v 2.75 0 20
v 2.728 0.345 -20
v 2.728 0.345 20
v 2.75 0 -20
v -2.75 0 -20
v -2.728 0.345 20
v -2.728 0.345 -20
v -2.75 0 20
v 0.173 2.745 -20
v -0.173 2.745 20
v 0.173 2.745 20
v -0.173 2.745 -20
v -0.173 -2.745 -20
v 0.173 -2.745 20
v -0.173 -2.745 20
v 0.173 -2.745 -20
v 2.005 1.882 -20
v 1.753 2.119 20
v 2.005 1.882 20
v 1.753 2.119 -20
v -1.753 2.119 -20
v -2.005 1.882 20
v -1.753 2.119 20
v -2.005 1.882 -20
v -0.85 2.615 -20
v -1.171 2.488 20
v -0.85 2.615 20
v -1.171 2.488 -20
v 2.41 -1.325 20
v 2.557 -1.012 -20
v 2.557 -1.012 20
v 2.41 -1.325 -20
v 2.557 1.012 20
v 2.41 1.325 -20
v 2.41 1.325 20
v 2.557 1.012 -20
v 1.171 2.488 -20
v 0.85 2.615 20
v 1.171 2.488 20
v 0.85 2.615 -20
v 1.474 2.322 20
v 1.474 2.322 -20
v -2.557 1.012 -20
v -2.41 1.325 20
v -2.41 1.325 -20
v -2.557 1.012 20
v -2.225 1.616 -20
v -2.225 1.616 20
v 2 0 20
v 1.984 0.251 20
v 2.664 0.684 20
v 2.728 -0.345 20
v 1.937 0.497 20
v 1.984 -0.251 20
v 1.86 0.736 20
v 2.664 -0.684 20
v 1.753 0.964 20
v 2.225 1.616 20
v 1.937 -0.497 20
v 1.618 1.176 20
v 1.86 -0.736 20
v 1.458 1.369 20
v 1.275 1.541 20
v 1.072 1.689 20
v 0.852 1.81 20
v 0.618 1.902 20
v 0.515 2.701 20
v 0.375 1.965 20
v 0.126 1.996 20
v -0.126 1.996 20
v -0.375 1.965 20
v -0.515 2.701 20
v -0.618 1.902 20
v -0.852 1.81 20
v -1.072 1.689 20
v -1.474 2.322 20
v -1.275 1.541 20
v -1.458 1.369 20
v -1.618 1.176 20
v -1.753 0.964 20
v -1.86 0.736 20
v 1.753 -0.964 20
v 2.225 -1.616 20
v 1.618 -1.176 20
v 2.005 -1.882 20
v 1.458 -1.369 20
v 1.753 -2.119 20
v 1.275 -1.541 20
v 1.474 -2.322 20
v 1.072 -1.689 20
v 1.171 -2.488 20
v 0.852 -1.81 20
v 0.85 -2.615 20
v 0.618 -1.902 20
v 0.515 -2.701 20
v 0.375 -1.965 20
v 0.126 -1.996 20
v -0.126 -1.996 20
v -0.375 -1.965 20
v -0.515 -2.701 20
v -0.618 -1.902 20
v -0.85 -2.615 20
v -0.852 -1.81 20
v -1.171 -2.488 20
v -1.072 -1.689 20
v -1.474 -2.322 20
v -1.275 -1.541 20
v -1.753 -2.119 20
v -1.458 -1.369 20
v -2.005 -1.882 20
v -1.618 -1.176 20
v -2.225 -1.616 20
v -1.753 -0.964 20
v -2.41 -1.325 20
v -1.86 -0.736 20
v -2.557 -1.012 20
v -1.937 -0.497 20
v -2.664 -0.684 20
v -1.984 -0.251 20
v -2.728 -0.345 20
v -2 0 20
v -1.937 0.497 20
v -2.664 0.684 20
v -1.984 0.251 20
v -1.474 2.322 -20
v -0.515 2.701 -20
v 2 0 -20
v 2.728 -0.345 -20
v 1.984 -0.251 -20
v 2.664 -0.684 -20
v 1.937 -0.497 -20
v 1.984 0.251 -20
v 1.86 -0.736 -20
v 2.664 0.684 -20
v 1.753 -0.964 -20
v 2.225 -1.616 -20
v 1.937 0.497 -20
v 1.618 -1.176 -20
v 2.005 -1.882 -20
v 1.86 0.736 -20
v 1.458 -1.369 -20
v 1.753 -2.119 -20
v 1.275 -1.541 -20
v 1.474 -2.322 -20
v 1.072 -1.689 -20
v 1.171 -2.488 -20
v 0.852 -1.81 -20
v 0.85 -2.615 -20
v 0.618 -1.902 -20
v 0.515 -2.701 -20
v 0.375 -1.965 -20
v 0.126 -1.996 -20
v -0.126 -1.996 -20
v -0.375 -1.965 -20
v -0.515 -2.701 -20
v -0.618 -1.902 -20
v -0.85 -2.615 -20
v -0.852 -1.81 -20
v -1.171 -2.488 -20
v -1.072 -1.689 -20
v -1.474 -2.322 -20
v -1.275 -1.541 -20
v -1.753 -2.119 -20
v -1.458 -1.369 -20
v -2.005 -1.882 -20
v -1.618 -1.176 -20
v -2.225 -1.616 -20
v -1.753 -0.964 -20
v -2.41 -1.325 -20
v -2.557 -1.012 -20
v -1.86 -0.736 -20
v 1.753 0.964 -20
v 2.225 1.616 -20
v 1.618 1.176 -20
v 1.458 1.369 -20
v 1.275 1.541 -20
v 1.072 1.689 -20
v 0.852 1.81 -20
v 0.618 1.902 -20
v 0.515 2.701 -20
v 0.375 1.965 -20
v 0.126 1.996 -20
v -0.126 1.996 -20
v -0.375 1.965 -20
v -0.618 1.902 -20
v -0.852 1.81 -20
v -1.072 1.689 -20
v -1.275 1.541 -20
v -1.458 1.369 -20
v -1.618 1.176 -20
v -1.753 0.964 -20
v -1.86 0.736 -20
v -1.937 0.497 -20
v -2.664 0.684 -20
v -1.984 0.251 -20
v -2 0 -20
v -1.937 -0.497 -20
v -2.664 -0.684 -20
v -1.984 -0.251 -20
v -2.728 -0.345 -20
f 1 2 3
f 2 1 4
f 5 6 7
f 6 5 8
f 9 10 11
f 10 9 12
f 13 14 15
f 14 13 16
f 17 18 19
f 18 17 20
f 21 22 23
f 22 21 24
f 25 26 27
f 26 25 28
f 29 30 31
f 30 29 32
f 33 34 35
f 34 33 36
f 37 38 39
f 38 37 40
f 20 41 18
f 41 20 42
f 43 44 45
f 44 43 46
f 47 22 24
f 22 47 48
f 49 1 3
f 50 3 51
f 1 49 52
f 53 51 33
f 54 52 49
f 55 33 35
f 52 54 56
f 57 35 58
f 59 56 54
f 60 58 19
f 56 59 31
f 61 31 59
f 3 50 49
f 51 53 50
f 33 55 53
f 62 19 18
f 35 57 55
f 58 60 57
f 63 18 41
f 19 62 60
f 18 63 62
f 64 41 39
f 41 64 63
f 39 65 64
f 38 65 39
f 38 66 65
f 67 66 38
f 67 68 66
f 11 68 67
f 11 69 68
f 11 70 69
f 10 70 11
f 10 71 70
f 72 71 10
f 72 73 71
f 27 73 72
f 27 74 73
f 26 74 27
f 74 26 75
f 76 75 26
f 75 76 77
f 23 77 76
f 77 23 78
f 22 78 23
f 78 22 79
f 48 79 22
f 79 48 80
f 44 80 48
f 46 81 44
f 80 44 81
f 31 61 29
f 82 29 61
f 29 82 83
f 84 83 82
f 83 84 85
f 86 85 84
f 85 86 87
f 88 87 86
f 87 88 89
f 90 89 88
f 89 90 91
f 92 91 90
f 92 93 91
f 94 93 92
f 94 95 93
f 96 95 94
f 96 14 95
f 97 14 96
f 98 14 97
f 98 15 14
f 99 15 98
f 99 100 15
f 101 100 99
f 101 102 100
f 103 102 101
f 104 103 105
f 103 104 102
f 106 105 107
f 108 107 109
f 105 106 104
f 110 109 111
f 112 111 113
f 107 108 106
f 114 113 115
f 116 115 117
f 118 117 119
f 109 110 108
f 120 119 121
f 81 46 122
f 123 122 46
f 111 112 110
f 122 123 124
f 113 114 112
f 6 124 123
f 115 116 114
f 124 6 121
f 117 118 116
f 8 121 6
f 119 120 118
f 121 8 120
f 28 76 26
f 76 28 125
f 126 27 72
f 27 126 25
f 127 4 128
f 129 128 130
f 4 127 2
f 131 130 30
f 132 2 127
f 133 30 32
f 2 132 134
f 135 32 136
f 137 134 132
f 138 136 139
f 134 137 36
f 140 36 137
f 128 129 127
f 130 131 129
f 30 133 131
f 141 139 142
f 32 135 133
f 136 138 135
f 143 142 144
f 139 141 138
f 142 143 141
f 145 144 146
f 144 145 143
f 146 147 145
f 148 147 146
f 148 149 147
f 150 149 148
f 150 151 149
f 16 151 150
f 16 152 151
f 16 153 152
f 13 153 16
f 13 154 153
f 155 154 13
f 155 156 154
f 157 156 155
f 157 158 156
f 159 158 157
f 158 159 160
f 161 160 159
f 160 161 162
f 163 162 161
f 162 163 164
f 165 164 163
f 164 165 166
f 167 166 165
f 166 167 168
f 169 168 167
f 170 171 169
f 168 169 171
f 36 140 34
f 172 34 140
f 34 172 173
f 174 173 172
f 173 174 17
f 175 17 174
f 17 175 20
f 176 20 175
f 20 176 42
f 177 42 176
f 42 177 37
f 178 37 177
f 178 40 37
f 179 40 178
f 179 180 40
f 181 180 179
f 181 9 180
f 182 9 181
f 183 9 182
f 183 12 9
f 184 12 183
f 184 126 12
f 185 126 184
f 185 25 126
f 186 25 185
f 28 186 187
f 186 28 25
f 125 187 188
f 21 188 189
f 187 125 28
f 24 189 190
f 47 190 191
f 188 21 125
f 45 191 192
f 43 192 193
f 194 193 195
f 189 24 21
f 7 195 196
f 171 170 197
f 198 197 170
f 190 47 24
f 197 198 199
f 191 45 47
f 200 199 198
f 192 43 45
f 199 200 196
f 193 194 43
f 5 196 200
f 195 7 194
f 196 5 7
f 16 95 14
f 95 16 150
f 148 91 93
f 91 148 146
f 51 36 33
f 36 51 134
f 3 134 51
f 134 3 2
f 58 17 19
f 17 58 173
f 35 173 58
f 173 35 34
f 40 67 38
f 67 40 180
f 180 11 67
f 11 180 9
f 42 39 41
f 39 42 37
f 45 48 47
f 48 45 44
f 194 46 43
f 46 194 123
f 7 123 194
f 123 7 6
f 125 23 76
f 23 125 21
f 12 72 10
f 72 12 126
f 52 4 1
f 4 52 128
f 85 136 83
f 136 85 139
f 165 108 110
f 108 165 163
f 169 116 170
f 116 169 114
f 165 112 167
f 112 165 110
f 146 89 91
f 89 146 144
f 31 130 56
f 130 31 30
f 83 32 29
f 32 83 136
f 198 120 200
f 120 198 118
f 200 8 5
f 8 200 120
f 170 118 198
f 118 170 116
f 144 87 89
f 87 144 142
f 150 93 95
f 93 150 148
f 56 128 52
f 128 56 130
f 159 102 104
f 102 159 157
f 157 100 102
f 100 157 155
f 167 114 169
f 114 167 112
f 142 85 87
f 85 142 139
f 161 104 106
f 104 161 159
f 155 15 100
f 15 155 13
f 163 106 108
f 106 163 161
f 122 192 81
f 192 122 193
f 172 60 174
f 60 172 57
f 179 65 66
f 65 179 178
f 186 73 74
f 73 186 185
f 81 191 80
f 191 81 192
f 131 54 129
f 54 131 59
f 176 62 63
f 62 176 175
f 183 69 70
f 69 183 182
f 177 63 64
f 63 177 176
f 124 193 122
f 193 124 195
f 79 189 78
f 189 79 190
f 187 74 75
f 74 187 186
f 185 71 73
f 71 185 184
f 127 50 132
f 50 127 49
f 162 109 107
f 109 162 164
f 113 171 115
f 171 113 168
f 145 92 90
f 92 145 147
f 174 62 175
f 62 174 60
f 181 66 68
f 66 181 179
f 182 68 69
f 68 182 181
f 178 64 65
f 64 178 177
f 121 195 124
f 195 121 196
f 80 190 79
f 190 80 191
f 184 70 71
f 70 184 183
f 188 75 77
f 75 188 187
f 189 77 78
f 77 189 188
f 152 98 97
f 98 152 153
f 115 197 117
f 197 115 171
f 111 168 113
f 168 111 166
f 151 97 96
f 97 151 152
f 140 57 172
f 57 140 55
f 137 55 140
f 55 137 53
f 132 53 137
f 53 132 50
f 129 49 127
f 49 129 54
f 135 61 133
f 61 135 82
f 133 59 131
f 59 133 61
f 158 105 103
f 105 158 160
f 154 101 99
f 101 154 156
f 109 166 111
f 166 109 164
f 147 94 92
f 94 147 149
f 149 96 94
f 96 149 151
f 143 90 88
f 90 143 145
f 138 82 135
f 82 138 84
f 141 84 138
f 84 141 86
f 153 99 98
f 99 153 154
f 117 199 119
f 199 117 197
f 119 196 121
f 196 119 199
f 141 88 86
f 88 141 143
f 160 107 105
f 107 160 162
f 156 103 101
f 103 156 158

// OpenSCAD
$fn = 50;


difference() {
	union() {
		translate(v = [0, 0, -20.0000000000]) {
			cylinder(h = 40, r = 2.7500000000);
		}
	}
	union() {
		translate(v = [0, 0, -100.0000000000]) {
			cylinder(h = 200, r = 2.0000000000);
		}
	}
}
